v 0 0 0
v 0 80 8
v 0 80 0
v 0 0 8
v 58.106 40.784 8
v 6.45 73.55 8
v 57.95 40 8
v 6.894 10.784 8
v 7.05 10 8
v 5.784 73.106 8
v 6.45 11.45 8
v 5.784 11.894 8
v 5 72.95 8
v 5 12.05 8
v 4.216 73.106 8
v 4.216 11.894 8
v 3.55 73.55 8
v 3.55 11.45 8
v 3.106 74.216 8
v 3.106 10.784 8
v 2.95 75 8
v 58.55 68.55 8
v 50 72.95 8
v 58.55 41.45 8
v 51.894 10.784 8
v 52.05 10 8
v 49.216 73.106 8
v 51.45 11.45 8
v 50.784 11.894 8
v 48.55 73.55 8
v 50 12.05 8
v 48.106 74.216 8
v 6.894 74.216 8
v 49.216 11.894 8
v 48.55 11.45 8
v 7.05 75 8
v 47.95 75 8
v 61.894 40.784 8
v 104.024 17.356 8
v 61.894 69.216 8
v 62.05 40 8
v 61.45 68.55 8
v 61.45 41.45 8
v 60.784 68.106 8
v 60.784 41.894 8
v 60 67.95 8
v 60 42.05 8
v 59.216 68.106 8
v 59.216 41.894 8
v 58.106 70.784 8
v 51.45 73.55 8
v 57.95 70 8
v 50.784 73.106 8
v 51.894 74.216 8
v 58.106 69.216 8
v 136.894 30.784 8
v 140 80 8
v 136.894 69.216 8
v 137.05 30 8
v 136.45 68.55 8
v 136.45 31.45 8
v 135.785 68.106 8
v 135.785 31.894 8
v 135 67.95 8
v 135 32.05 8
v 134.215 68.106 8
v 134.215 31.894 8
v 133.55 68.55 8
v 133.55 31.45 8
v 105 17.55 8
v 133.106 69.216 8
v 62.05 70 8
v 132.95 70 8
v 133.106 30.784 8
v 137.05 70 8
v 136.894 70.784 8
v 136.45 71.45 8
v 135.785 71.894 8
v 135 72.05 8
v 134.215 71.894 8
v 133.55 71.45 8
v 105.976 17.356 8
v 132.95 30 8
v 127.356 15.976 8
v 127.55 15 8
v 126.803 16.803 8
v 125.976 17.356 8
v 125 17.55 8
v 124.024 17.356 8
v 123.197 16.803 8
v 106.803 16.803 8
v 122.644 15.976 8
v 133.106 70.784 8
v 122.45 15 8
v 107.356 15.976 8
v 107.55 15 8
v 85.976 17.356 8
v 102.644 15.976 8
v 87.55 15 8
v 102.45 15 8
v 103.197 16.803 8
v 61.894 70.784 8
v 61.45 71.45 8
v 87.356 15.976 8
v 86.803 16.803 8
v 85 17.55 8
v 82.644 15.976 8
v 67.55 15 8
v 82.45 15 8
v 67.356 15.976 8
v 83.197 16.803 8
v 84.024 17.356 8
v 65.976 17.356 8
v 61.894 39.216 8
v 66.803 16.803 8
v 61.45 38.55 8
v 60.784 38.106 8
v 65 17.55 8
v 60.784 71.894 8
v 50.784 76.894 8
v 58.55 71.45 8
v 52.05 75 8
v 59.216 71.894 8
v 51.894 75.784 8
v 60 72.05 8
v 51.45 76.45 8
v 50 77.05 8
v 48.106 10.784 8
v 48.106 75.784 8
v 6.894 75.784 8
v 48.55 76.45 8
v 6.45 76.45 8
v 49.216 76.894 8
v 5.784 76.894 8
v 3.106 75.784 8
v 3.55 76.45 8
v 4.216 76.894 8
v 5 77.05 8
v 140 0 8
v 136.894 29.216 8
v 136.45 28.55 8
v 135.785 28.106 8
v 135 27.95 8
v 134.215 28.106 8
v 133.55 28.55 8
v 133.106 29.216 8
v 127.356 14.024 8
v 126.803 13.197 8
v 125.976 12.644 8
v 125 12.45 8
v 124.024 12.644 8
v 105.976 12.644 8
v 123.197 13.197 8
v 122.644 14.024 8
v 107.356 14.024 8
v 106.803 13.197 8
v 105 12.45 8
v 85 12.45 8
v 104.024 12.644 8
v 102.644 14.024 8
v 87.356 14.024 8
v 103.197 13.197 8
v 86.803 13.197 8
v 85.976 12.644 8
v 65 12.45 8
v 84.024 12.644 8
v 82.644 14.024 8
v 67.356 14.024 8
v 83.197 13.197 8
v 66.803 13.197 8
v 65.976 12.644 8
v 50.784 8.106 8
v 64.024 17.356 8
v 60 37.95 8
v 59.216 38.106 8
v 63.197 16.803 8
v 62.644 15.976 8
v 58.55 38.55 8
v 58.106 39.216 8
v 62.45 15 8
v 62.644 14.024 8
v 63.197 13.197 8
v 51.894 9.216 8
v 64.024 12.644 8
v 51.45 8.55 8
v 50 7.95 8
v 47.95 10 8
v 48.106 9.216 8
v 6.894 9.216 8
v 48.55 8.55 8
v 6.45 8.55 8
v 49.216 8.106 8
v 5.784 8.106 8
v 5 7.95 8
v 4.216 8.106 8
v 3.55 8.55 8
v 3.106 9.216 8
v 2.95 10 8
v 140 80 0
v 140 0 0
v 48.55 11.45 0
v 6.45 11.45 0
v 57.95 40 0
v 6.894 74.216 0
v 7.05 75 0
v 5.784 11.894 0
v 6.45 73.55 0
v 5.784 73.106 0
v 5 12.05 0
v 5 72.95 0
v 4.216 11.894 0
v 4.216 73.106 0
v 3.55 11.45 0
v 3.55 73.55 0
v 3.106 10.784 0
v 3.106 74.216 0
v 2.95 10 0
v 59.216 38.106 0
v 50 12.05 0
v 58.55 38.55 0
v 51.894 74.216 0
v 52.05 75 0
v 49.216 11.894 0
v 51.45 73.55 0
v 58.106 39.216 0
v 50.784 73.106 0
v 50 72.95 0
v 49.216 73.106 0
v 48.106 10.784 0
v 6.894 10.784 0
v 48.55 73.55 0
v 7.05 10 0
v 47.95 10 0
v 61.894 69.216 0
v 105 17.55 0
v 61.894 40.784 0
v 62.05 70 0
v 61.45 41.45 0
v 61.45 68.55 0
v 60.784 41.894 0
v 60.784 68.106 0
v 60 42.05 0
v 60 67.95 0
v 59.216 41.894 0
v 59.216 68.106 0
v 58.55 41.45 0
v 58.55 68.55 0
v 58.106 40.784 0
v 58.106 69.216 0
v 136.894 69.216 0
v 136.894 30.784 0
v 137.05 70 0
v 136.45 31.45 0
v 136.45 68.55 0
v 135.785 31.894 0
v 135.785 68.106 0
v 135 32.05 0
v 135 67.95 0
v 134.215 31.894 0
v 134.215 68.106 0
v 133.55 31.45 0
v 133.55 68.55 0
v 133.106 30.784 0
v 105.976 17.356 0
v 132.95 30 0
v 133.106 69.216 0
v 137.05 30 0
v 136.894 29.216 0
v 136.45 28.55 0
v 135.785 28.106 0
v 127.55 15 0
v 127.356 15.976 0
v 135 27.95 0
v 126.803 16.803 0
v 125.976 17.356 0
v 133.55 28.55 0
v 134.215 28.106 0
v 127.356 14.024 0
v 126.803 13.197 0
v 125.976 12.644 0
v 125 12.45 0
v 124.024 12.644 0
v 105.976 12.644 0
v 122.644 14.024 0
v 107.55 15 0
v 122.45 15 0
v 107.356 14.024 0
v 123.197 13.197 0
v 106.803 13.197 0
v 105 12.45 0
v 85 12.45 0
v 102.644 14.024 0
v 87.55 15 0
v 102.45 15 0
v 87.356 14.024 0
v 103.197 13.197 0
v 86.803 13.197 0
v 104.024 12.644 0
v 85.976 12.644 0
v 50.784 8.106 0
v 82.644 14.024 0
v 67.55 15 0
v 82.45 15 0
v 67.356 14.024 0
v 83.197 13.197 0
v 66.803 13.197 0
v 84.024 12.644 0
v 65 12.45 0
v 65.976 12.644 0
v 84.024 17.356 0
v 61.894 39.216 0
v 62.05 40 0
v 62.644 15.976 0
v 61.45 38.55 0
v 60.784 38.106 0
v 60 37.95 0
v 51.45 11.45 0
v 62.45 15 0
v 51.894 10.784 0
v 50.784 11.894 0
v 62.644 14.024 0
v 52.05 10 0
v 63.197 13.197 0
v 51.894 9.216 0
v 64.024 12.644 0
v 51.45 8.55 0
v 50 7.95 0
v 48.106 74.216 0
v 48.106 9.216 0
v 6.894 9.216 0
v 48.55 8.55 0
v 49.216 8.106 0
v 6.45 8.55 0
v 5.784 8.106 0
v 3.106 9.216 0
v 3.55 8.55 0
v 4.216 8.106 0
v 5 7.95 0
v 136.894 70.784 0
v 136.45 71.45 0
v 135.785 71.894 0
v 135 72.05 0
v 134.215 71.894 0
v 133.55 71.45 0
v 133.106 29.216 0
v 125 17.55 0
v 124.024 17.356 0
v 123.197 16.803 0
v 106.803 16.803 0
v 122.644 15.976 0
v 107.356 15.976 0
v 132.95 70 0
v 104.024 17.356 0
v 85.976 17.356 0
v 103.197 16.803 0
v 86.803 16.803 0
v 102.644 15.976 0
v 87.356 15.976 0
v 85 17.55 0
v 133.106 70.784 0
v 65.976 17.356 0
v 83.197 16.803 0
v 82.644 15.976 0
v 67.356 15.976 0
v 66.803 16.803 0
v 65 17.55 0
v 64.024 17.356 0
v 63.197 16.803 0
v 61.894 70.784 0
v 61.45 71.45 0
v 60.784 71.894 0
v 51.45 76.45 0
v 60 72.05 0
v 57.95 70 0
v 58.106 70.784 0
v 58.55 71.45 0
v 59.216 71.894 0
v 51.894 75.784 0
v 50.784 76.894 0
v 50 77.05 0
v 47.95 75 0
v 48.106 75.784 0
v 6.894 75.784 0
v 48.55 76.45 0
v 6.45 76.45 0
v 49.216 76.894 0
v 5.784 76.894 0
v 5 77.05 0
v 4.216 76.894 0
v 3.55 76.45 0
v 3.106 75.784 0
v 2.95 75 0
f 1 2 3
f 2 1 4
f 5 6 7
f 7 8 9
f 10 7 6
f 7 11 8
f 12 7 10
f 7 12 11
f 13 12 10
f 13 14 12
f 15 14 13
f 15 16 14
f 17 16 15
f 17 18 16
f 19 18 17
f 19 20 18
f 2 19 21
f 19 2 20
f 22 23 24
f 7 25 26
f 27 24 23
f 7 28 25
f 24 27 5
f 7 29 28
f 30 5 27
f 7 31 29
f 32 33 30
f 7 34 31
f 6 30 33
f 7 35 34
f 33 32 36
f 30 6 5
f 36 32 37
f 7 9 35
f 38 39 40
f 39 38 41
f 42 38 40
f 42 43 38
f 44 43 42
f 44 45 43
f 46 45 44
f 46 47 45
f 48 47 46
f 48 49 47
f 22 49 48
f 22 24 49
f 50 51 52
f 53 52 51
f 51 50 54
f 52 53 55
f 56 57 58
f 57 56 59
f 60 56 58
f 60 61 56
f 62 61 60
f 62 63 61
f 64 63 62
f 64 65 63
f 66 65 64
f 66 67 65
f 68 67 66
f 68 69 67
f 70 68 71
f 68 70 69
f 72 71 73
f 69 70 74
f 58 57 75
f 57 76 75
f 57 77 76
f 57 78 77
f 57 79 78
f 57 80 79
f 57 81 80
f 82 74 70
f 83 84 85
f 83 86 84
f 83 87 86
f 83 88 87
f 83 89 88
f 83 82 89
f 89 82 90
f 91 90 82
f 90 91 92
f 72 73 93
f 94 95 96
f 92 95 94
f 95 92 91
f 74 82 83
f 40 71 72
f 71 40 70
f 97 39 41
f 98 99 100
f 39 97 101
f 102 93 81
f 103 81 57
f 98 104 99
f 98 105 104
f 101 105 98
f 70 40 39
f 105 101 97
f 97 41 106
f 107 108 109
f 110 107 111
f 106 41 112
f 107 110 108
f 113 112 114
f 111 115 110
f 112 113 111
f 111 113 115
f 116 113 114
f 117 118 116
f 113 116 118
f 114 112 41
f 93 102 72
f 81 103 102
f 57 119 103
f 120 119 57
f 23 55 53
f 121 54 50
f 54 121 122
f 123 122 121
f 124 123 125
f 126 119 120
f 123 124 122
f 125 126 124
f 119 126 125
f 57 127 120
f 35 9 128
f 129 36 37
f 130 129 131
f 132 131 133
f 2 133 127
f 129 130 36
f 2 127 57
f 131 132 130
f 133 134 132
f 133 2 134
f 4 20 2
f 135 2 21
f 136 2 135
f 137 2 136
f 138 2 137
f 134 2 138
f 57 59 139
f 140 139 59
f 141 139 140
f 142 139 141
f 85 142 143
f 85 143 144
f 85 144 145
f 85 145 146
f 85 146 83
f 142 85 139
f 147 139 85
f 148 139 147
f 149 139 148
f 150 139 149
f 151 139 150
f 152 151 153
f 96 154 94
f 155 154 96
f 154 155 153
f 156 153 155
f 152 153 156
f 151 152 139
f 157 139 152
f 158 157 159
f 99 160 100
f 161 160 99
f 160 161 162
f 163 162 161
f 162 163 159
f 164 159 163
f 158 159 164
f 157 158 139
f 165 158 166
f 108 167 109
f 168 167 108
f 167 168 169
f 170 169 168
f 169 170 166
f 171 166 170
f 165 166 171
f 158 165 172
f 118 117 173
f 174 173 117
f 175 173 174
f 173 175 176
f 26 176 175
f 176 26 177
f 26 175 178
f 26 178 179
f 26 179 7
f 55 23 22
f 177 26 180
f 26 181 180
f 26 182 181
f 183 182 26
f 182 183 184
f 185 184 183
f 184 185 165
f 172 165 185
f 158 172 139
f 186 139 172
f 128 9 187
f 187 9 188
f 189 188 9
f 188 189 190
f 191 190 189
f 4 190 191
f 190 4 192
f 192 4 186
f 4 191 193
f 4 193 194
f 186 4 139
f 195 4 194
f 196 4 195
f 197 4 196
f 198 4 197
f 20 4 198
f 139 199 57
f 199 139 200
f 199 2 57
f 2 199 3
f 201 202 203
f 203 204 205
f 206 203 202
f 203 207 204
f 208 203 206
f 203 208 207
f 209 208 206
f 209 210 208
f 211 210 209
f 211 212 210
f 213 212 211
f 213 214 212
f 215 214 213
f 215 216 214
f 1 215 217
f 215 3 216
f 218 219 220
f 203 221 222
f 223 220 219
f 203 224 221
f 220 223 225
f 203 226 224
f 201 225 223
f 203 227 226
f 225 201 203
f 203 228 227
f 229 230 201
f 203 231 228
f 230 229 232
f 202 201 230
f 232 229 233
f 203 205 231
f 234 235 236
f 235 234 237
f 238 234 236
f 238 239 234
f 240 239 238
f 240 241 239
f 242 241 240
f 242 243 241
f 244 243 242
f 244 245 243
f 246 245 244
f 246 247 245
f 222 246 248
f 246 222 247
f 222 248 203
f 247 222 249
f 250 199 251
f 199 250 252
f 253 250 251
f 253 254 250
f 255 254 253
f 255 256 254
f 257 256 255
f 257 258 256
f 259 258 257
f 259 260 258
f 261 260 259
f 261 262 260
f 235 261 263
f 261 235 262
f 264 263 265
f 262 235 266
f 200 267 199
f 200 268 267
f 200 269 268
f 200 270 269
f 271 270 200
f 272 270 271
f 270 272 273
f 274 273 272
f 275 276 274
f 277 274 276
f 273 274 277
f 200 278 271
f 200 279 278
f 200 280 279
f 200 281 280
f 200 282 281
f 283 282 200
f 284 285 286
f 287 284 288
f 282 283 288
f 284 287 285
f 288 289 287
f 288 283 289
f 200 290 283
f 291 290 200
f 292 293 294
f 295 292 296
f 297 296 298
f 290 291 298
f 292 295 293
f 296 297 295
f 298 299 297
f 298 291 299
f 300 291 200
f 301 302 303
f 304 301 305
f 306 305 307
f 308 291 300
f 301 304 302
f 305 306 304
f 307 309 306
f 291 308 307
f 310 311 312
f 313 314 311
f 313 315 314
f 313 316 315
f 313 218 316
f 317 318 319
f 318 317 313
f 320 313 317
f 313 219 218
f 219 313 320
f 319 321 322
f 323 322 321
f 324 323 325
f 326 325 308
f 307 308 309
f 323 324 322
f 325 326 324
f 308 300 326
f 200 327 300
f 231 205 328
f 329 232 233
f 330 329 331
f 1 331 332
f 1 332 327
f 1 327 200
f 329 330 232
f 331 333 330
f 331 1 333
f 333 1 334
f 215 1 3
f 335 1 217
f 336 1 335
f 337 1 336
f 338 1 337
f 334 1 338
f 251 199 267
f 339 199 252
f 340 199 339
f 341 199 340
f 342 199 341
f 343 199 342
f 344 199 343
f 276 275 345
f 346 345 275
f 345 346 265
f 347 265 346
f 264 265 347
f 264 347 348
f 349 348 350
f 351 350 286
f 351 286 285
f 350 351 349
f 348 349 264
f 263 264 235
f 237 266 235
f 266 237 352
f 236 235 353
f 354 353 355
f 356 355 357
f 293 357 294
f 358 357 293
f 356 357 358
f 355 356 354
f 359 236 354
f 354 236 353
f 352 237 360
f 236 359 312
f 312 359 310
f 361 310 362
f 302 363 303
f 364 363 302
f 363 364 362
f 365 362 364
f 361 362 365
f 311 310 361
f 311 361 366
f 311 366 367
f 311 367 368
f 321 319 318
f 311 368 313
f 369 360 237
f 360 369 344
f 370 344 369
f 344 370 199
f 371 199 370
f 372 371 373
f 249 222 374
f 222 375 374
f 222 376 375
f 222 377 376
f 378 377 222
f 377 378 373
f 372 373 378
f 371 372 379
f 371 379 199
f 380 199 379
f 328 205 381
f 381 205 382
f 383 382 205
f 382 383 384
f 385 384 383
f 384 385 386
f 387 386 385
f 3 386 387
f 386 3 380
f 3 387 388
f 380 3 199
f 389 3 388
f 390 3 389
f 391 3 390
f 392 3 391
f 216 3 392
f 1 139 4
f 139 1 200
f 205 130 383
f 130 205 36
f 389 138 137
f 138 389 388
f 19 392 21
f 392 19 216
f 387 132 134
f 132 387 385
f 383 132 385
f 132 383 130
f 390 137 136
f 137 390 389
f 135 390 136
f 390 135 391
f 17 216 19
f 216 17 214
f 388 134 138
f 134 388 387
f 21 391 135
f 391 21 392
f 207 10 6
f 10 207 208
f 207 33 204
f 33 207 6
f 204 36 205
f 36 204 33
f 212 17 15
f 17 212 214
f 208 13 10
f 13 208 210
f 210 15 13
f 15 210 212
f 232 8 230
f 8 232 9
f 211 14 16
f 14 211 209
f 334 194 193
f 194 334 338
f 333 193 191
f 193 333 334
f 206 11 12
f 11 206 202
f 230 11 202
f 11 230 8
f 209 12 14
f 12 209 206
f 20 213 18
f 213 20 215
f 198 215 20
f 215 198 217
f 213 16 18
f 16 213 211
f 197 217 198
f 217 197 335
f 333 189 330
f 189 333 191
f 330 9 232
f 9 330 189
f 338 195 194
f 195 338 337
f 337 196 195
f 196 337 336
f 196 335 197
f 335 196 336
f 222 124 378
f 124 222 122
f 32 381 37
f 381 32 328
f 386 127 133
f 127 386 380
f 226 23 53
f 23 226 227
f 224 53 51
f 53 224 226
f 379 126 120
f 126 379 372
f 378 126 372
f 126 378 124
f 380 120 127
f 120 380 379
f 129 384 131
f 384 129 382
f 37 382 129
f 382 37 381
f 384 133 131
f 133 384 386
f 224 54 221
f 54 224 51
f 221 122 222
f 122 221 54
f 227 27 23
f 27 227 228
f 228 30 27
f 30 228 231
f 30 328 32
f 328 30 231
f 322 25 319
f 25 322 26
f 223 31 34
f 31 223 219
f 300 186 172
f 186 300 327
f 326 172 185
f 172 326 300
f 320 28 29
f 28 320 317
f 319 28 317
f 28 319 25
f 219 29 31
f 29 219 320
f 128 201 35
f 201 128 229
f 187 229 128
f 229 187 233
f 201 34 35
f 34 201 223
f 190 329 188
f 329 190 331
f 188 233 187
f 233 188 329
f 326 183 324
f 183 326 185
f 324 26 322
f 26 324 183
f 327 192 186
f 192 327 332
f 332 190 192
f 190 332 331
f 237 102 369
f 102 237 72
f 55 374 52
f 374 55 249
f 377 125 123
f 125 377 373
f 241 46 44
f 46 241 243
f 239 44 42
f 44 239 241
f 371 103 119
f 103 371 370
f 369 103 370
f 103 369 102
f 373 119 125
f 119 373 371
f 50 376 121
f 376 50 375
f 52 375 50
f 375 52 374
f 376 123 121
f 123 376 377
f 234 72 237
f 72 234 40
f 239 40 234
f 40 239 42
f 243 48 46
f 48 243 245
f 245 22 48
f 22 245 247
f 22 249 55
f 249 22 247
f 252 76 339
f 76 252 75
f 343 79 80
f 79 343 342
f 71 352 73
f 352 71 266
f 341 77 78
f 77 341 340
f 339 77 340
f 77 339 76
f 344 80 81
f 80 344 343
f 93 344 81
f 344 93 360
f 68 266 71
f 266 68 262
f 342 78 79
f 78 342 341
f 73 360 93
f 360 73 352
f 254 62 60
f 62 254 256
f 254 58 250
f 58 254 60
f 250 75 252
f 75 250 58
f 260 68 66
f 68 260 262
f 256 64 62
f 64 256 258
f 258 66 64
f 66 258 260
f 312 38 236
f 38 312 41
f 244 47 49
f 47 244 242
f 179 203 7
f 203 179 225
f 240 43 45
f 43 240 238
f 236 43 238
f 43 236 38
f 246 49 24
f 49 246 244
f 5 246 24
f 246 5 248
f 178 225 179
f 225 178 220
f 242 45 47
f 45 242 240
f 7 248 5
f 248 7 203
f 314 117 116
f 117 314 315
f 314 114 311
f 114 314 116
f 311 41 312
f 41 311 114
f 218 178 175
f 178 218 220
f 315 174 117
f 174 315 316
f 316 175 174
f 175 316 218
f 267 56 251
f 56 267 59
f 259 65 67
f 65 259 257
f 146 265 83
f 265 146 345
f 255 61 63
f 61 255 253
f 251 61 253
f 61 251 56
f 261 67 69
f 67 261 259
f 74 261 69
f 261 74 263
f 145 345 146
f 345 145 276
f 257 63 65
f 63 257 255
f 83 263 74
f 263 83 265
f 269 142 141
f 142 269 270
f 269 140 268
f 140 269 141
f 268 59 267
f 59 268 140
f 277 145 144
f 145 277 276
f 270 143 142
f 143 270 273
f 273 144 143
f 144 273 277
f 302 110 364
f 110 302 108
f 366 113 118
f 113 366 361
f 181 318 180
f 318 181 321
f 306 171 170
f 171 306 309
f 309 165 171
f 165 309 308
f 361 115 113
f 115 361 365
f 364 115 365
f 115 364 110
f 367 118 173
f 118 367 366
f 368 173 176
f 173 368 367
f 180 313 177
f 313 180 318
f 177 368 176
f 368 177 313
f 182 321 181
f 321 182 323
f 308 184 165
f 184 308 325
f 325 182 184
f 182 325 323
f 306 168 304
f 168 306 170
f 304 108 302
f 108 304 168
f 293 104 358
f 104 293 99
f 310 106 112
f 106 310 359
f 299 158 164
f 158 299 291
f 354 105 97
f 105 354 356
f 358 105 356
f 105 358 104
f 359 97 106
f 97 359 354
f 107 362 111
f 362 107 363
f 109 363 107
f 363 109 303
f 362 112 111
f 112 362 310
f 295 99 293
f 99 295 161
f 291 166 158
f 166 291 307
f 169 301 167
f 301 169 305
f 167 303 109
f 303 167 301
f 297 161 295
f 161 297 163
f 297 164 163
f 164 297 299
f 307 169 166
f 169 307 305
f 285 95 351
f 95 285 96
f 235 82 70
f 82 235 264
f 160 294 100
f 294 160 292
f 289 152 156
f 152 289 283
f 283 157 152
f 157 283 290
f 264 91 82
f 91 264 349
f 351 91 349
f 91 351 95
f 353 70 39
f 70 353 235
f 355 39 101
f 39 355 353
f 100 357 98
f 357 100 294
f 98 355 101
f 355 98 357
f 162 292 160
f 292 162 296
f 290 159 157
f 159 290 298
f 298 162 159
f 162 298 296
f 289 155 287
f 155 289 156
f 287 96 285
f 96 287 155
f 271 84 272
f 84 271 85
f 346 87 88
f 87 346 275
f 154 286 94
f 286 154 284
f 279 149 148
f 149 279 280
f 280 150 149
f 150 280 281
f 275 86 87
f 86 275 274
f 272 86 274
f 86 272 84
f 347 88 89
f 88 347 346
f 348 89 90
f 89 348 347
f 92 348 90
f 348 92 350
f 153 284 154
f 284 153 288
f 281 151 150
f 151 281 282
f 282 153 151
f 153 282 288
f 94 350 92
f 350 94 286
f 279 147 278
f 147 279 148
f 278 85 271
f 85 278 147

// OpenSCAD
// Halterung Arduino und Relais

gap          = .1;

BasisPlatteX = 140;
BasisPlatteY = 80;
BasisPlatteZ = 8;
SchraubeM4   = 4+gap;
SchraubeM5   = 5+gap;

RelaisPosX =  5;
RelaisPosY =  5;
RelaisX    = 45;
RelaisY    = 65;

ArduinoPosX = 60;
ArduinoPosY = 10;
ArduinoX    = 75;
ArduinoY1   = 30;
ArduinoY2   = 40;

NutDistance = 20;
NutPosX     = 65;
NutPosY     = 15;

difference()
{
    cube([BasisPlatteX,BasisPlatteY,BasisPlatteZ]);
    // Relais Mount
    translate([RelaisPosX,BasisPlatteY-RelaisPosY,-gap])   cylinder(h=BasisPlatteZ+2*gap,d=SchraubeM4,$fn=16);
    translate([RelaisPosX,BasisPlatteY-RelaisPosY-RelaisY,-gap])   cylinder(h=BasisPlatteZ+2*gap,d=SchraubeM4,$fn=16);
    translate([RelaisPosX+RelaisX,BasisPlatteY-RelaisPosY,-gap])   cylinder(h=BasisPlatteZ+2*gap,d=SchraubeM4,$fn=16);
    translate([RelaisPosX+RelaisX,BasisPlatteY-RelaisPosY-RelaisY,-gap])   cylinder(h=BasisPlatteZ+2*gap,d=SchraubeM4,$fn=16);
    // Arduino Mount
    translate([ArduinoPosX,BasisPlatteY-ArduinoPosY,-gap])   cylinder(h=BasisPlatteZ+2*gap,d=SchraubeM4,$fn=16);
    translate([ArduinoPosX+ArduinoX,BasisPlatteY-ArduinoPosY,-gap])   cylinder(h=BasisPlatteZ+2*gap,d=SchraubeM4,$fn=16);
    translate([ArduinoPosX,BasisPlatteY-ArduinoPosY-ArduinoY1,-gap])   cylinder(h=BasisPlatteZ+2*gap,d=SchraubeM4,$fn=16);
    translate([ArduinoPosX+ArduinoX,BasisPlatteY-ArduinoPosY-ArduinoY2,-gap])   cylinder(h=BasisPlatteZ+2*gap,d=SchraubeM4,$fn=16);
    // Profil Montage
    translate([NutPosX,NutPosY,-gap])   cylinder(h=BasisPlatteZ+2*gap,d=SchraubeM5,$fn=16);
    translate([NutPosX+NutDistance,NutPosY,-gap])   cylinder(h=BasisPlatteZ+2*gap,d=SchraubeM5,$fn=16);
    translate([NutPosX+NutDistance*2,NutPosY,-gap])   cylinder(h=BasisPlatteZ+2*gap,d=SchraubeM5,$fn=16);
    translate([NutPosX+NutDistance*3,NutPosY,-gap])   cylinder(h=BasisPlatteZ+2*gap,d=SchraubeM5,$fn=16);
    
    
}
